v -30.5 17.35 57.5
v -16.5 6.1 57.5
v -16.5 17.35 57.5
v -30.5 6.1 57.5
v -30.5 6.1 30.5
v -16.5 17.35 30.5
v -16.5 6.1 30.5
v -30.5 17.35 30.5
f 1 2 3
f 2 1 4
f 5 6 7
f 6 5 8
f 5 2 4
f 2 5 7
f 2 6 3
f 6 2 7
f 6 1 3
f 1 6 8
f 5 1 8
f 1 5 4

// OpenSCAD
// file: D:/Projects/assembly-workshop/outputs/Screen_Pi_Hue_SCR5-H_2026-10-30/checks/geometry.scad
// SCR5-G; mm; FRONT view: X right, Z up, Y into rack. Glass/plate front Y=0.
// Measured values: work/screen-5in/Dimensions.md. Physical fit/strength UNKNOWN.
part="plate";
DROP=0.45; // coupon winner can be substituted here; all three pins use this DROP
LIP=0.8; LIP_ON=true;
LIP_EDGES=[true,true,false,false]; // left,right,bottom,top; Brian: side lips only, cosmetic
FRAME_STEP=1.5; // measured glass-edge inset to metal LCD frame, left/right only
SHIM=0; // moves rear frame seat and plate-boss mating face back
$fn=48;
GCX=33; GCZ=41.5; PW=252; PH=88.8; PT=4;
GW=120.7; GH=77.2; CLEAR=0.2; WW=GW+2*CLEAR; WH=GH+2*CLEAR;
SEAT=13.3+SHIM; FT=3;
SO=[56.45,34]; BTN_X=[45.5,35.5,25.5];
PCB_TOP=38; GAP=0.10; LEAF_T=0.8;
HOLE=[3.4,40.3,44.7];
BX=[GCX-68,GCX+68]; BZ=[10,72];
// DSI connector X extent is unmeasured: conservative assumed 8 mm inward from PCB edge.
DSI=[GCX-60.5,9.1,GCZ-38+30,8,5.25,21];
module xz(y,d){translate([0,y+d,0])rotate([90,0,0])linear_extrude(d)children();}
// rr/rack_slots copied from SCR5-F; same exact slot centres, outline shifted -0.05 Z to centre 44.4.
module rr(w,h,r){hull()for(x=[-w/2+r,w/2-r],z=[-h/2+r,h/2-r])translate([x,z])circle(r=r);}
module rack_slots(){for(x=[-118.2625,118.2625],z=[6.323,38.127,50.773,82.577])translate([x,z])hull()for(dx=[-1.5,1.5])translate([dx,0])circle(d=7);}
module cyl_y(x,y,z,d,h){translate([x,y,z])rotate([-90,0,0])cylinder(d=d,h=h);}
module window_cut(){
  xz(-0.02,4.04)translate([GCX,GCZ])square([WW,WH],center=true);
  // 0.3 x 45-degree chamfer, square corners, front only.
  translate([GCX,0.3,GCZ])rotate([90,0,0])
    linear_extrude(height=0.3,scale=[(WW+0.6)/WW,(WH+0.6)/WH])square([WW,WH],center=true);
}
module lips(){
  // Cosmetic side ledges only; rear frame/standoffs set depth and retain the screen.
  if(LIP_ON)for(i=[0:3])if(LIP_EDGES[i]){
    if(i<2)translate([GCX+(i==0?-WW/2:WW/2-LIP),2.5,GCZ-GH/2+4])cube([LIP,0.8,GH-8]);
    else translate([GCX-GW/2+4,2.5,GCZ+(i==2?-WH/2:WH/2-LIP)])cube([GW-8,0.8,LIP]);
  }
}
// Leaf/nub/bump geometry copied from SCR5-WP-A, translated to this glass centre.
module leaves(){for(x=BTN_X)translate([GCX+x-1.5,0,GCZ]){
  translate([0,0,PCB_TOP+GAP+0.9+0.1])cube([3,11.8,LEAF_T]);
  translate([0,10.2,PCB_TOP+GAP])cube([3,1.4,1.0+LEAF_T/2]);
  translate([0,10.4,PCB_TOP+GAP+1.0+LEAF_T])cube([3,1.0,0.9]);
}}
module plate(){difference(){union(){
  difference(){xz(0,PT)translate([0,PH/2])rr(PW,PH,2.5);window_cut();}
  for(x=BX,z=BZ)cyl_y(x,3.9,z,8,SEAT-3.9);
  leaves(); lips();
 }
 xz(-0.02,4.04)rack_slots();
 for(x=BTN_X)translate([GCX+x-HOLE[0]/2,-0.02,GCZ+HOLE[1]])cube([HOLE[0],SEAT+FT+0.04,HOLE[2]-HOLE[1]]);
 // Printed-in screw pilots (no heat-set OD assumption): nominal M2.5, fit UNKNOWN.
 for(x=BX,z=BZ)cyl_y(x,SEAT-6,z,2.1,6.02);
 // Rear engraving, 0.5 deep, left field.
 xz(3.5,0.52)translate([-75,40])mirror([1,0])text("SCR5-G",size=6,halign="center",font="Liberation Sans:style=Bold");
}}
module frame_blank(){
  // C-shaped perimeter; no material across the board centre / touch FPC.
  xz(SEAT,FT)translate([GCX,GCZ])difference(){square([132,76],center=true);square([116,60],center=true);}
  for(sx=[-1,1],sz=[-1,1])cyl_y(GCX+sx*SO[0],SEAT,GCZ+sz*SO[1],9,FT);
  for(x=BX,z=BZ)hull(){cyl_y(x,SEAT,z,8,FT);cyl_y(GCX+(x<GCX?-62:62),SEAT,z,8,FT);}
}
module dsi_keepout(){translate([DSI[0]-3,DSI[1]-3,DSI[2]-3])cube([DSI[3]+6,DSI[4]+6,DSI[5]+6]);}
module ribbon_route(){
  // Open left/up corridor 18 mm wide; extends past top of plate.
  translate([GCX-84,6.1,GCZ-11])cube([18,24,65]);
  translate([GCX-84,6.1,GCZ-11])cube([32,24,27]);
}
module frame(){difference(){frame_blank();dsi_keepout();ribbon_route();
 for(sx=[-1,1],sz=[-1,1])cyl_y(GCX+sx*SO[0],SEAT-0.02,GCZ+sz*SO[1],2.8,FT+0.04);
 for(x=BX,z=BZ)cyl_y(x,SEAT-0.02,z,2.8,FT+0.04);
}}
// Pin polygon/cap/notch/dot design copied unchanged from SCR5-WP-A.
module pin(d,dots){s=2*d+0.5;difference(){union(){
 translate([-1.5,0,0])rotate([90,0,90])linear_extrude(3)polygon([
 [-s-0.02,40.5],[10.2,40.5],[10.2,41.0],[11.5,41.0],[11.5+2*d,41.0-d],[15,41.0-d],[15,44.5],[-s-0.02,44.5]]);
 translate([-2.5,-s-1.5,39.6])cube([5,1.5,5.8]);
 }for(i=[0:dots-1])translate([(i-(dots-1)/2)*1.4,-s-1.5-0.01,43.5])rotate([-90,0,0])cylinder(d=0.9,h=0.4);}}
module placed_pin(i){translate([GCX+BTN_X[i],0,GCZ])pin(DROP,i+1);}
// Measured layers: cover glass 0.9 + second glass 1.6, metal frame 3.0,
// open gap 2.0, PCB 1.6. Metal frame inset ~1.5 at LEFT/RIGHT only.
// PCB centred under glass and full metal-frame top/bottom extent remain UNKNOWN.
module glass(){translate([GCX-GW/2,0,GCZ-GH/2])cube([GW,2.5,GH]);}
module lcd(){
  translate([GCX-GW/2+FRAME_STEP,2.5,GCZ-GH/2])cube([GW-2*FRAME_STEP,3.0,GH]);
}
module pcb(){translate([GCX-60.5,7.5,GCZ-38])cube([121,1.6,76]);}
module standoffs(){for(sx=[-1,1],sz=[-1,1])difference(){cyl_y(GCX+sx*SO[0],9.1,GCZ+sz*SO[1],5.5,4.2);cyl_y(GCX+sx*SO[0],9.08,GCZ+sz*SO[1],2.5,4.24);}}
module buttons(){for(x=BTN_X){
 translate([GCX+x-3.5,9.1,GCZ+38-3.4])cube([7,3.6,2.4]);
 translate([GCX+x-1.5,9.1,GCZ+37])cube([3,3.6,1]);
}}
module dsi(){translate([DSI[0],DSI[1],DSI[2]])cube([DSI[3],DSI[4],DSI[5]]);}
module touch(){translate([GCX-10,9.1,GCZ-5])cube([20,2,10]);} // lateral extent unmeasured
module dummy(){glass();lcd();pcb();standoffs();buttons();dsi();touch();}
module assembly(){color("gray")plate();color("orange")frame();for(i=[0:2])color("cyan")placed_pin(i);color([0.2,0.3,0.4,0.4])dummy();}
// main file
include <D:/Projects/assembly-workshop/outputs/Screen_Pi_Hue_SCR5-H_2026-10-30/checks/geometry.scad>
dsi_keepout();
